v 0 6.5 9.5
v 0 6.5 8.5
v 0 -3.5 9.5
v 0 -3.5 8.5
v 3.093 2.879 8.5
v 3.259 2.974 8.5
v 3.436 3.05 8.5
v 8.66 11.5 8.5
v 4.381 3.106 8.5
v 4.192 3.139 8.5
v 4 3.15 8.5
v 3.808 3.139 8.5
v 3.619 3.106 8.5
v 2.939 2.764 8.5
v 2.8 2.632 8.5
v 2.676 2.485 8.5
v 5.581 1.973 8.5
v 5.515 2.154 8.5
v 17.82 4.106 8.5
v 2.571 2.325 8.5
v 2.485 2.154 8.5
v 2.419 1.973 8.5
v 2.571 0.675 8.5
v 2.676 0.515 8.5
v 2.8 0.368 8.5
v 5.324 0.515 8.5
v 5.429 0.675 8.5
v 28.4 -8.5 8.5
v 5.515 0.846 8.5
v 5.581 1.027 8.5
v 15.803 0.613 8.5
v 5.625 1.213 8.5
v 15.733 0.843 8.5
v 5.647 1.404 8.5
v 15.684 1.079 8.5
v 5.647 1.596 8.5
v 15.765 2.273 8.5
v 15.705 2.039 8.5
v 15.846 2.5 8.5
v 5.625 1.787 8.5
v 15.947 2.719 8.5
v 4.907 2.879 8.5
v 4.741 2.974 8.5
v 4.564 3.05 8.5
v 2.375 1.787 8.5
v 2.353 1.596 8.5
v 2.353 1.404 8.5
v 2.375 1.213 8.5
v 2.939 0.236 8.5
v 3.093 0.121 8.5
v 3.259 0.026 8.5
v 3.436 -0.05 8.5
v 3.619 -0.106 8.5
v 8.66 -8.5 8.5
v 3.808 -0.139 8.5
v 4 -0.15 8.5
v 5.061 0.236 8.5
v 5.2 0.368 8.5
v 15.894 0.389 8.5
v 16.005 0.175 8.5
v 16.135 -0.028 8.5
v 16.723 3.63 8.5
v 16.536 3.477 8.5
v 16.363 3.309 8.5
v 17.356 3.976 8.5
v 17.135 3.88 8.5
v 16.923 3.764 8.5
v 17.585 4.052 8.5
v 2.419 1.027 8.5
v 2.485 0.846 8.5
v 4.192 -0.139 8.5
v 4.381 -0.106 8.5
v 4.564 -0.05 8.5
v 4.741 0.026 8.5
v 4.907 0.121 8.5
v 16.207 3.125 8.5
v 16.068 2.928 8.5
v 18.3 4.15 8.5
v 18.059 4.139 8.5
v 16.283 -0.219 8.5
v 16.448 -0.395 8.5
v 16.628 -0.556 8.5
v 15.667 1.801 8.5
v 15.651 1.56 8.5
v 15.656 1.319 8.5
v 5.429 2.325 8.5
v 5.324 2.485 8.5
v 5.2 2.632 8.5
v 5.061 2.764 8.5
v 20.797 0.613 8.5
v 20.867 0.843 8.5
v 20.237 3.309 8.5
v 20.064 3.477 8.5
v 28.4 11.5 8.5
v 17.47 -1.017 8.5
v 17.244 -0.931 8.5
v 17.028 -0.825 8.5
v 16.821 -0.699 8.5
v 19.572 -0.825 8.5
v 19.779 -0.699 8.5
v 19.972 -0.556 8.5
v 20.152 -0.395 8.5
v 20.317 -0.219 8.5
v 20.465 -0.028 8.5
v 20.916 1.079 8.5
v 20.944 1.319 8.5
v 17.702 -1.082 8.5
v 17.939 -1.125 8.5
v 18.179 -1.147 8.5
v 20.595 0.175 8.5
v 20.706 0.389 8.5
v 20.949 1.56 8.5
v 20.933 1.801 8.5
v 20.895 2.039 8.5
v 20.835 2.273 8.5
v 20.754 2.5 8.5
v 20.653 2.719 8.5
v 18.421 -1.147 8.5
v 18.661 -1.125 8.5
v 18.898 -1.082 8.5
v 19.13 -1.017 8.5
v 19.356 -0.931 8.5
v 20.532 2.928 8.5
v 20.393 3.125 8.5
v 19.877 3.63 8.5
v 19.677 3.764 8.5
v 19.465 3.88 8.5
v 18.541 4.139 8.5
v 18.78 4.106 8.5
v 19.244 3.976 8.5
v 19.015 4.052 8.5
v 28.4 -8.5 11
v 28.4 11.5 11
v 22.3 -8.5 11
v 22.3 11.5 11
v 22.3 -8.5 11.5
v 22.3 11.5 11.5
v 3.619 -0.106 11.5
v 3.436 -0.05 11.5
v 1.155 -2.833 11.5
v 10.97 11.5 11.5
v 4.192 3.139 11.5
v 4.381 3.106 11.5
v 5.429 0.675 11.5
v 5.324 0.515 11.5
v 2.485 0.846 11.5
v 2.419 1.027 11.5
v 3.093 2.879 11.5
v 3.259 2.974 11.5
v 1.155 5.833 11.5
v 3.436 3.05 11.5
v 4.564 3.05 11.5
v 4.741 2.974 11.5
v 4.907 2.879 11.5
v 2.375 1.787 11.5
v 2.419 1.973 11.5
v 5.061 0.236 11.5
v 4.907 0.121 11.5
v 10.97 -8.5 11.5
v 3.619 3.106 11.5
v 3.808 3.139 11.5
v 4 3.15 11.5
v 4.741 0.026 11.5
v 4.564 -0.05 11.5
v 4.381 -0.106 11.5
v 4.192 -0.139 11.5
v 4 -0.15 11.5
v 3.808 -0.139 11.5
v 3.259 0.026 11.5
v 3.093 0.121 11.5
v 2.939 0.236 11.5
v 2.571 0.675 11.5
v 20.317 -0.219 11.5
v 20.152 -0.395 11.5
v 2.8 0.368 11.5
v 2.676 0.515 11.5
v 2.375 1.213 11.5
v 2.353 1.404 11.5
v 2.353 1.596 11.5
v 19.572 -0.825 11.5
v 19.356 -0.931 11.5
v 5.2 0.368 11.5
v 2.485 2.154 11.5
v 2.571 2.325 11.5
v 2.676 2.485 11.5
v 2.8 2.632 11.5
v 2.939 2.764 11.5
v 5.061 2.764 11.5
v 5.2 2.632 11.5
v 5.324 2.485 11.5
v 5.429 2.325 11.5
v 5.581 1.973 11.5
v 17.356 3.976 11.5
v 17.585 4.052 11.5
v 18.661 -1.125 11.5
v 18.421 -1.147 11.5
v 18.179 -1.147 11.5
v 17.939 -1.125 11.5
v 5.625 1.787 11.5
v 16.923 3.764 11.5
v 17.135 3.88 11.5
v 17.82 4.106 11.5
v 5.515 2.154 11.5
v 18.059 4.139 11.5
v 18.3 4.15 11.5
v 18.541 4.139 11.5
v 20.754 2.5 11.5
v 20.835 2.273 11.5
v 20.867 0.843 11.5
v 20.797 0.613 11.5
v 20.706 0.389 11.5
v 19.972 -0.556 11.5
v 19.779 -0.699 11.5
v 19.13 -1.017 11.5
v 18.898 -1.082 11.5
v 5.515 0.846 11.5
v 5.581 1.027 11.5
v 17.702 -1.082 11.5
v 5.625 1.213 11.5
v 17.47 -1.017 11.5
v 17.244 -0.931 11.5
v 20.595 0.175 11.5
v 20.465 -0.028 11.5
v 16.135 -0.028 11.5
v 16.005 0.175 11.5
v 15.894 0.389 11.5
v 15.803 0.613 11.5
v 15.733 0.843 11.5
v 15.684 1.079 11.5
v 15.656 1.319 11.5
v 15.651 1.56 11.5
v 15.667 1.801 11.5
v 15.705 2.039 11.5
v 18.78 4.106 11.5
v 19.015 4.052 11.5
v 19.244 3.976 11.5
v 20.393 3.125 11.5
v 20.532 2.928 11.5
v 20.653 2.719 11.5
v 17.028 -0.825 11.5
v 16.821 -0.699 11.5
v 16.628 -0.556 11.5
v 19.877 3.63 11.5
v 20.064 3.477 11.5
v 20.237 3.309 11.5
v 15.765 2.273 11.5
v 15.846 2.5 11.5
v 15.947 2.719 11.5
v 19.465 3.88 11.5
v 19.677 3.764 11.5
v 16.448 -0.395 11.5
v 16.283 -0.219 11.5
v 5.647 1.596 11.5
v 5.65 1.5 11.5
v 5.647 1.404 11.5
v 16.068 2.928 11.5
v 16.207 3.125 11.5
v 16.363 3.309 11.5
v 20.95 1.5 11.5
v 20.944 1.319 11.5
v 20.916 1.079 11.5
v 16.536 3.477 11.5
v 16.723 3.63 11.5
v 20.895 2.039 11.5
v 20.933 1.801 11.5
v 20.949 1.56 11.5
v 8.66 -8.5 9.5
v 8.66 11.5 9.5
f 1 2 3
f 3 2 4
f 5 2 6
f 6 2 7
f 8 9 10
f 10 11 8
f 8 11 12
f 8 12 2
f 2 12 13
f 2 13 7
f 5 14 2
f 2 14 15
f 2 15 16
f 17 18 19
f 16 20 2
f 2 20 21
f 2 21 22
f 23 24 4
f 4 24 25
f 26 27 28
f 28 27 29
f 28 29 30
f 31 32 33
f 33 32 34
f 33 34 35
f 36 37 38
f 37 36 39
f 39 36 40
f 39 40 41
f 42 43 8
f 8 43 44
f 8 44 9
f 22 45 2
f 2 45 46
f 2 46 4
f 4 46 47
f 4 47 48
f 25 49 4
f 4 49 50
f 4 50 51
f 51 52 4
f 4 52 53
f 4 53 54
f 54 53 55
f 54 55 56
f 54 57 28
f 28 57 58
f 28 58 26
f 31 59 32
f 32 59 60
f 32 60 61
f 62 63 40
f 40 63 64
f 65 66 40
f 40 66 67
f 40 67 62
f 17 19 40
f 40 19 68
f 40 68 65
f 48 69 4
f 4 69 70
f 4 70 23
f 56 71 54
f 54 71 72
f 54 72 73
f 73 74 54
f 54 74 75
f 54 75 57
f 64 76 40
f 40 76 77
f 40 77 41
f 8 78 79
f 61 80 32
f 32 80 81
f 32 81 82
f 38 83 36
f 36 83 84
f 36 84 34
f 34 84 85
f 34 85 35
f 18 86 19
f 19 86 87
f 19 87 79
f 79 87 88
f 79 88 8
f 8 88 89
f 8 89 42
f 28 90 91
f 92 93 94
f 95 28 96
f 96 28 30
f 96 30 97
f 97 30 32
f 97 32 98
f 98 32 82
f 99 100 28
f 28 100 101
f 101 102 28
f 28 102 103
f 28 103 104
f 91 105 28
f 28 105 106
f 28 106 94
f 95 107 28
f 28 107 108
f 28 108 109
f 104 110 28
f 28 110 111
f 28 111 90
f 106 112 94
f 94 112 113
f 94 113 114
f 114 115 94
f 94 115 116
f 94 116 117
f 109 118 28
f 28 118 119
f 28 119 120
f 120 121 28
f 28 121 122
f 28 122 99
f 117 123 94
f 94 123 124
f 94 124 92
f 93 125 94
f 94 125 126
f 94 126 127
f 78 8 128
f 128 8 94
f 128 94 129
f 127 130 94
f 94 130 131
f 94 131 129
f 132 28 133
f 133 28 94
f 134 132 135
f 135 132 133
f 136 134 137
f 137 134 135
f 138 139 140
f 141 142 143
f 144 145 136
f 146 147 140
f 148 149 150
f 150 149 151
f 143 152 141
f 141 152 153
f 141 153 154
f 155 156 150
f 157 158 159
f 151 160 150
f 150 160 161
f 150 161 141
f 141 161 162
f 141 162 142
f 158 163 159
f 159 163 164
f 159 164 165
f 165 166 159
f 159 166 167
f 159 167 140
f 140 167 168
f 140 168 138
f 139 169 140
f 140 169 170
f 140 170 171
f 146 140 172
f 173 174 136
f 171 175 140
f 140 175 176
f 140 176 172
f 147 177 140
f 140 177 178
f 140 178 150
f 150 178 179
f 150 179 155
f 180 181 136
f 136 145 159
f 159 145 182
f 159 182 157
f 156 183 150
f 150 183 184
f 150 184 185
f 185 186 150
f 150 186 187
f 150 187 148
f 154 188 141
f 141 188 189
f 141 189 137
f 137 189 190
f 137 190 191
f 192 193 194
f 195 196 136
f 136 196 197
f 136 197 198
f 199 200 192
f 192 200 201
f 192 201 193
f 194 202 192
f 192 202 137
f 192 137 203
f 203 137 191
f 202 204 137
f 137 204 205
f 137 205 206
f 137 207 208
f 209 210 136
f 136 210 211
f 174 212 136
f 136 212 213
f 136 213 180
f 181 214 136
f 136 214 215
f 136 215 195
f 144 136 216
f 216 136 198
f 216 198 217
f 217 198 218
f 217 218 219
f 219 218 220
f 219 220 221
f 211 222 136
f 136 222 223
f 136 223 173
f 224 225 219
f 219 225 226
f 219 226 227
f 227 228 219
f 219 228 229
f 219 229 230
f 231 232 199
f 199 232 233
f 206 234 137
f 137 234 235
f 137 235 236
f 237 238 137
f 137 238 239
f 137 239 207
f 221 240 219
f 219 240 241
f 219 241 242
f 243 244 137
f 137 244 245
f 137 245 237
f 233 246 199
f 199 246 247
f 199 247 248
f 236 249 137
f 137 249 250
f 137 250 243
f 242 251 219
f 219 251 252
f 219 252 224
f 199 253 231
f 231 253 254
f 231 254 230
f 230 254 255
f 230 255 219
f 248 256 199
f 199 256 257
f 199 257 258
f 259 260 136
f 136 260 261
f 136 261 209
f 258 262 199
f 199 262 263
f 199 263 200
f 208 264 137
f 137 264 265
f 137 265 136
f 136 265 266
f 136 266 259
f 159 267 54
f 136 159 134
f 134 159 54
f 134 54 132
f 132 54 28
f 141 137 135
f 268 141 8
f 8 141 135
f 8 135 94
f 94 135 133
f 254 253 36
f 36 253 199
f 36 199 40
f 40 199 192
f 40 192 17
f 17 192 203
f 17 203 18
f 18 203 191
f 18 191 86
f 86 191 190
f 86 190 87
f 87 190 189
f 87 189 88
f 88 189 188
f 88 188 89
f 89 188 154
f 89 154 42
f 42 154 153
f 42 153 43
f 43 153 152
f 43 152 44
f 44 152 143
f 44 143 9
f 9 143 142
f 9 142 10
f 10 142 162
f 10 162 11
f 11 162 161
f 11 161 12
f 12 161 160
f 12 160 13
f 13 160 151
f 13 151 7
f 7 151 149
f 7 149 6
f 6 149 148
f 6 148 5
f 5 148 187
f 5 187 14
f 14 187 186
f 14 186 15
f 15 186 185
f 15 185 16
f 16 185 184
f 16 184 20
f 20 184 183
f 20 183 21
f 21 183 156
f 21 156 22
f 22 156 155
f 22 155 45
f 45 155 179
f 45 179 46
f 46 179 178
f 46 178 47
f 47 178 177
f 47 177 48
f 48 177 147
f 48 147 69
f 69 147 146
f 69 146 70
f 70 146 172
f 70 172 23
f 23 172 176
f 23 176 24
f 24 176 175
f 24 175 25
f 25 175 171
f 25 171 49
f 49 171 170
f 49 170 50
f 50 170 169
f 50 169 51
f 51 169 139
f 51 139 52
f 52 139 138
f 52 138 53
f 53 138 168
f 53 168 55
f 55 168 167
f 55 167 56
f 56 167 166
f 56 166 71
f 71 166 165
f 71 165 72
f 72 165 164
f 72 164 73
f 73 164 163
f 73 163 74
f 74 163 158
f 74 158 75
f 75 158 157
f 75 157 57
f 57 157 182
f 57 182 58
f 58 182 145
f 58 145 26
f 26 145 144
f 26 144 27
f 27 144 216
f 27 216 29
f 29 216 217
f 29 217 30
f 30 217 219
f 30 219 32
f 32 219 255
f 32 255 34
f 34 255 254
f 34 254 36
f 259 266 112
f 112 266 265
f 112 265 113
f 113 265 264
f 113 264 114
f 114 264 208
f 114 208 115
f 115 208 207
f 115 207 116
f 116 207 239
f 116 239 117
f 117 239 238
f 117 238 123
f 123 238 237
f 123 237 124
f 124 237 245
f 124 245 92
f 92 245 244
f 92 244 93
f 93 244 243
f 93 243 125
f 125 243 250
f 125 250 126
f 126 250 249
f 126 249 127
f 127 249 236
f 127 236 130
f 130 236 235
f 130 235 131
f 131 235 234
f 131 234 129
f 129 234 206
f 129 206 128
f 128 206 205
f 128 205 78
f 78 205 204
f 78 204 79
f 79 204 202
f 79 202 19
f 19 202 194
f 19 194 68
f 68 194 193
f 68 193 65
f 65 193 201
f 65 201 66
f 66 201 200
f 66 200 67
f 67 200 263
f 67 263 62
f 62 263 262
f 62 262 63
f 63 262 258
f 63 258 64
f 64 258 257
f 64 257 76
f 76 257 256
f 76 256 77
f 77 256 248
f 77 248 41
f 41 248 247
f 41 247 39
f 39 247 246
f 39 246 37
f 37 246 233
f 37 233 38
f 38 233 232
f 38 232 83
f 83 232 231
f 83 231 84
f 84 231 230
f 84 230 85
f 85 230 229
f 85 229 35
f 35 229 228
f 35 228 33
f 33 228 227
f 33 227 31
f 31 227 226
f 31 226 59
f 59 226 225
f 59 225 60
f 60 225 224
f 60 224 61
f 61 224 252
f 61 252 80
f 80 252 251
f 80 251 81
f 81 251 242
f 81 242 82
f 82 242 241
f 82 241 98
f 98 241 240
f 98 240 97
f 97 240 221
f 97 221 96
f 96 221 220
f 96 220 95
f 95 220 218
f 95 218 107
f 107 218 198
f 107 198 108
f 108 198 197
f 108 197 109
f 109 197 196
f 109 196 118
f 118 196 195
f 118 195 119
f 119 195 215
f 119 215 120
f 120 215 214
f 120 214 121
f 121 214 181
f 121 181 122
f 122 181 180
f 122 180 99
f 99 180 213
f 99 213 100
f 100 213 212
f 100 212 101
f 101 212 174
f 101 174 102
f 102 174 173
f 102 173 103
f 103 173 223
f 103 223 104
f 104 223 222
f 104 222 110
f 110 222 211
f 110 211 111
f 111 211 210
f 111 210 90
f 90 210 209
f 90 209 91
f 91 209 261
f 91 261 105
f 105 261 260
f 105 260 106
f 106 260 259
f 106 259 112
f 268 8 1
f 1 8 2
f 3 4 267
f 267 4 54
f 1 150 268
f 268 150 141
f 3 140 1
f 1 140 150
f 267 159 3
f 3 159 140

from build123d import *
from OCP.BRepFilletAPI import BRepFilletAPI_MakeChamfer

# Parameters (mm, degrees)
AUFSATZ_LINEAR_AUSTRAGEN1_DEPTH    = 20
SKIZZE2_R                          = 1.65
SKIZZE2_R_2                        = 2.65
SCHNITT_LINEAR_AUSTRAGEN1_DEPTH    = 3
FASE1_SIZE                         = 5
FASE1_SIZE2                        = 8.660254038
FASE2_SIZE                         = 2
FASE2_SIZE2                        = 1.154700538
K_RPER_VERSCHIEBEN_KOPIEREN1_ANGLE = 90


with BuildPart() as part:
    # Skizze1 → Aufsatz-Linear austragen1 (new body)
    with BuildSketch(Plane.XY):
        Polygon((0, 0), (28.4, 0), (28.4, 2.5), (22.3, 2.5), (22.3, 3), (0, 3), align=None)
    extrude(amount=AUFSATZ_LINEAR_AUSTRAGEN1_DEPTH)

    # Skizze2 → Schnitt-Linear austragen1 (cut)
    with BuildSketch(Plane.XZ):
        with Locations(Location((4, 10, 0), (0, 0, 270))):
            Circle(SKIZZE2_R)
        with Locations(Location((18.3, 10, 0), (0, 0, 270))):
            Circle(SKIZZE2_R_2)
    extrude(amount=-SCHNITT_LINEAR_AUSTRAGEN1_DEPTH, mode=Mode.SUBTRACT)

    # Fase1
    fase1_edges = [part.edges().sort_by_distance(p)[0] for p in [
        (0, 1.5, 20),
        (0, 1.5, 0),
    ]]
    fase1_side = [part.faces().sort_by_distance(p)[0] for p in [
        (0, 1.5, 10),
    ]]
    chamfer(fase1_edges, length=FASE1_SIZE, length2=FASE1_SIZE2, reference=fase1_side[0])

    # Fase2: one chamfer whose edges measure the first distance from different faces: ONE call of the kernel's chamfer builder (chamfer() names one face for all edges)
    fase2_edges_1 = [part.edges().sort_by_distance(p)[0] for p in [
        (0, 3, 10),
    ]]
    fase2_side_1 = [part.faces().sort_by_distance(p)[0] for p in [
        (0, 1.5, 10),
    ]]
    fase2_edges_2 = [part.edges().sort_by_distance(p)[0] for p in [
        (4.330127019, 3, 17.5),
    ]]
    fase2_side_2 = [part.faces().sort_by_distance(p)[0] for p in [
        (4.330127019, 1.5, 17.5),
    ]]
    fase2_edges_3 = [part.edges().sort_by_distance(p)[0] for p in [
        (4.330127019, 3, 2.5),
    ]]
    fase2_side_3 = [part.faces().sort_by_distance(p)[0] for p in [
        (4.330127019, 1.5, 2.5),
    ]]
    fase2 = BRepFilletAPI_MakeChamfer(part.part.solid().wrapped)
    for e in fase2_edges_1:
        fase2.Add(FASE2_SIZE, FASE2_SIZE2, e.wrapped, fase2_side_1[0].wrapped)  # the first distance lies on this face
    for e in fase2_edges_2:
        fase2.Add(FASE2_SIZE, FASE2_SIZE2, e.wrapped, fase2_side_2[0].wrapped)  # the first distance lies on this face
    for e in fase2_edges_3:
        fase2.Add(FASE2_SIZE, FASE2_SIZE2, e.wrapped, fase2_side_3[0].wrapped)  # the first distance lies on this face
    add(Compound.cast(fase2.Shape()), mode=Mode.REPLACE)


with BuildPart() as part_1:
    # Körper-Verschieben/Kopieren1: moved
    add(part.part.rotate(Axis((0, 1.5, 10), (1, 0, 0)), K_RPER_VERSCHIEBEN_KOPIEREN1_ANGLE))


solid = part_1.part
